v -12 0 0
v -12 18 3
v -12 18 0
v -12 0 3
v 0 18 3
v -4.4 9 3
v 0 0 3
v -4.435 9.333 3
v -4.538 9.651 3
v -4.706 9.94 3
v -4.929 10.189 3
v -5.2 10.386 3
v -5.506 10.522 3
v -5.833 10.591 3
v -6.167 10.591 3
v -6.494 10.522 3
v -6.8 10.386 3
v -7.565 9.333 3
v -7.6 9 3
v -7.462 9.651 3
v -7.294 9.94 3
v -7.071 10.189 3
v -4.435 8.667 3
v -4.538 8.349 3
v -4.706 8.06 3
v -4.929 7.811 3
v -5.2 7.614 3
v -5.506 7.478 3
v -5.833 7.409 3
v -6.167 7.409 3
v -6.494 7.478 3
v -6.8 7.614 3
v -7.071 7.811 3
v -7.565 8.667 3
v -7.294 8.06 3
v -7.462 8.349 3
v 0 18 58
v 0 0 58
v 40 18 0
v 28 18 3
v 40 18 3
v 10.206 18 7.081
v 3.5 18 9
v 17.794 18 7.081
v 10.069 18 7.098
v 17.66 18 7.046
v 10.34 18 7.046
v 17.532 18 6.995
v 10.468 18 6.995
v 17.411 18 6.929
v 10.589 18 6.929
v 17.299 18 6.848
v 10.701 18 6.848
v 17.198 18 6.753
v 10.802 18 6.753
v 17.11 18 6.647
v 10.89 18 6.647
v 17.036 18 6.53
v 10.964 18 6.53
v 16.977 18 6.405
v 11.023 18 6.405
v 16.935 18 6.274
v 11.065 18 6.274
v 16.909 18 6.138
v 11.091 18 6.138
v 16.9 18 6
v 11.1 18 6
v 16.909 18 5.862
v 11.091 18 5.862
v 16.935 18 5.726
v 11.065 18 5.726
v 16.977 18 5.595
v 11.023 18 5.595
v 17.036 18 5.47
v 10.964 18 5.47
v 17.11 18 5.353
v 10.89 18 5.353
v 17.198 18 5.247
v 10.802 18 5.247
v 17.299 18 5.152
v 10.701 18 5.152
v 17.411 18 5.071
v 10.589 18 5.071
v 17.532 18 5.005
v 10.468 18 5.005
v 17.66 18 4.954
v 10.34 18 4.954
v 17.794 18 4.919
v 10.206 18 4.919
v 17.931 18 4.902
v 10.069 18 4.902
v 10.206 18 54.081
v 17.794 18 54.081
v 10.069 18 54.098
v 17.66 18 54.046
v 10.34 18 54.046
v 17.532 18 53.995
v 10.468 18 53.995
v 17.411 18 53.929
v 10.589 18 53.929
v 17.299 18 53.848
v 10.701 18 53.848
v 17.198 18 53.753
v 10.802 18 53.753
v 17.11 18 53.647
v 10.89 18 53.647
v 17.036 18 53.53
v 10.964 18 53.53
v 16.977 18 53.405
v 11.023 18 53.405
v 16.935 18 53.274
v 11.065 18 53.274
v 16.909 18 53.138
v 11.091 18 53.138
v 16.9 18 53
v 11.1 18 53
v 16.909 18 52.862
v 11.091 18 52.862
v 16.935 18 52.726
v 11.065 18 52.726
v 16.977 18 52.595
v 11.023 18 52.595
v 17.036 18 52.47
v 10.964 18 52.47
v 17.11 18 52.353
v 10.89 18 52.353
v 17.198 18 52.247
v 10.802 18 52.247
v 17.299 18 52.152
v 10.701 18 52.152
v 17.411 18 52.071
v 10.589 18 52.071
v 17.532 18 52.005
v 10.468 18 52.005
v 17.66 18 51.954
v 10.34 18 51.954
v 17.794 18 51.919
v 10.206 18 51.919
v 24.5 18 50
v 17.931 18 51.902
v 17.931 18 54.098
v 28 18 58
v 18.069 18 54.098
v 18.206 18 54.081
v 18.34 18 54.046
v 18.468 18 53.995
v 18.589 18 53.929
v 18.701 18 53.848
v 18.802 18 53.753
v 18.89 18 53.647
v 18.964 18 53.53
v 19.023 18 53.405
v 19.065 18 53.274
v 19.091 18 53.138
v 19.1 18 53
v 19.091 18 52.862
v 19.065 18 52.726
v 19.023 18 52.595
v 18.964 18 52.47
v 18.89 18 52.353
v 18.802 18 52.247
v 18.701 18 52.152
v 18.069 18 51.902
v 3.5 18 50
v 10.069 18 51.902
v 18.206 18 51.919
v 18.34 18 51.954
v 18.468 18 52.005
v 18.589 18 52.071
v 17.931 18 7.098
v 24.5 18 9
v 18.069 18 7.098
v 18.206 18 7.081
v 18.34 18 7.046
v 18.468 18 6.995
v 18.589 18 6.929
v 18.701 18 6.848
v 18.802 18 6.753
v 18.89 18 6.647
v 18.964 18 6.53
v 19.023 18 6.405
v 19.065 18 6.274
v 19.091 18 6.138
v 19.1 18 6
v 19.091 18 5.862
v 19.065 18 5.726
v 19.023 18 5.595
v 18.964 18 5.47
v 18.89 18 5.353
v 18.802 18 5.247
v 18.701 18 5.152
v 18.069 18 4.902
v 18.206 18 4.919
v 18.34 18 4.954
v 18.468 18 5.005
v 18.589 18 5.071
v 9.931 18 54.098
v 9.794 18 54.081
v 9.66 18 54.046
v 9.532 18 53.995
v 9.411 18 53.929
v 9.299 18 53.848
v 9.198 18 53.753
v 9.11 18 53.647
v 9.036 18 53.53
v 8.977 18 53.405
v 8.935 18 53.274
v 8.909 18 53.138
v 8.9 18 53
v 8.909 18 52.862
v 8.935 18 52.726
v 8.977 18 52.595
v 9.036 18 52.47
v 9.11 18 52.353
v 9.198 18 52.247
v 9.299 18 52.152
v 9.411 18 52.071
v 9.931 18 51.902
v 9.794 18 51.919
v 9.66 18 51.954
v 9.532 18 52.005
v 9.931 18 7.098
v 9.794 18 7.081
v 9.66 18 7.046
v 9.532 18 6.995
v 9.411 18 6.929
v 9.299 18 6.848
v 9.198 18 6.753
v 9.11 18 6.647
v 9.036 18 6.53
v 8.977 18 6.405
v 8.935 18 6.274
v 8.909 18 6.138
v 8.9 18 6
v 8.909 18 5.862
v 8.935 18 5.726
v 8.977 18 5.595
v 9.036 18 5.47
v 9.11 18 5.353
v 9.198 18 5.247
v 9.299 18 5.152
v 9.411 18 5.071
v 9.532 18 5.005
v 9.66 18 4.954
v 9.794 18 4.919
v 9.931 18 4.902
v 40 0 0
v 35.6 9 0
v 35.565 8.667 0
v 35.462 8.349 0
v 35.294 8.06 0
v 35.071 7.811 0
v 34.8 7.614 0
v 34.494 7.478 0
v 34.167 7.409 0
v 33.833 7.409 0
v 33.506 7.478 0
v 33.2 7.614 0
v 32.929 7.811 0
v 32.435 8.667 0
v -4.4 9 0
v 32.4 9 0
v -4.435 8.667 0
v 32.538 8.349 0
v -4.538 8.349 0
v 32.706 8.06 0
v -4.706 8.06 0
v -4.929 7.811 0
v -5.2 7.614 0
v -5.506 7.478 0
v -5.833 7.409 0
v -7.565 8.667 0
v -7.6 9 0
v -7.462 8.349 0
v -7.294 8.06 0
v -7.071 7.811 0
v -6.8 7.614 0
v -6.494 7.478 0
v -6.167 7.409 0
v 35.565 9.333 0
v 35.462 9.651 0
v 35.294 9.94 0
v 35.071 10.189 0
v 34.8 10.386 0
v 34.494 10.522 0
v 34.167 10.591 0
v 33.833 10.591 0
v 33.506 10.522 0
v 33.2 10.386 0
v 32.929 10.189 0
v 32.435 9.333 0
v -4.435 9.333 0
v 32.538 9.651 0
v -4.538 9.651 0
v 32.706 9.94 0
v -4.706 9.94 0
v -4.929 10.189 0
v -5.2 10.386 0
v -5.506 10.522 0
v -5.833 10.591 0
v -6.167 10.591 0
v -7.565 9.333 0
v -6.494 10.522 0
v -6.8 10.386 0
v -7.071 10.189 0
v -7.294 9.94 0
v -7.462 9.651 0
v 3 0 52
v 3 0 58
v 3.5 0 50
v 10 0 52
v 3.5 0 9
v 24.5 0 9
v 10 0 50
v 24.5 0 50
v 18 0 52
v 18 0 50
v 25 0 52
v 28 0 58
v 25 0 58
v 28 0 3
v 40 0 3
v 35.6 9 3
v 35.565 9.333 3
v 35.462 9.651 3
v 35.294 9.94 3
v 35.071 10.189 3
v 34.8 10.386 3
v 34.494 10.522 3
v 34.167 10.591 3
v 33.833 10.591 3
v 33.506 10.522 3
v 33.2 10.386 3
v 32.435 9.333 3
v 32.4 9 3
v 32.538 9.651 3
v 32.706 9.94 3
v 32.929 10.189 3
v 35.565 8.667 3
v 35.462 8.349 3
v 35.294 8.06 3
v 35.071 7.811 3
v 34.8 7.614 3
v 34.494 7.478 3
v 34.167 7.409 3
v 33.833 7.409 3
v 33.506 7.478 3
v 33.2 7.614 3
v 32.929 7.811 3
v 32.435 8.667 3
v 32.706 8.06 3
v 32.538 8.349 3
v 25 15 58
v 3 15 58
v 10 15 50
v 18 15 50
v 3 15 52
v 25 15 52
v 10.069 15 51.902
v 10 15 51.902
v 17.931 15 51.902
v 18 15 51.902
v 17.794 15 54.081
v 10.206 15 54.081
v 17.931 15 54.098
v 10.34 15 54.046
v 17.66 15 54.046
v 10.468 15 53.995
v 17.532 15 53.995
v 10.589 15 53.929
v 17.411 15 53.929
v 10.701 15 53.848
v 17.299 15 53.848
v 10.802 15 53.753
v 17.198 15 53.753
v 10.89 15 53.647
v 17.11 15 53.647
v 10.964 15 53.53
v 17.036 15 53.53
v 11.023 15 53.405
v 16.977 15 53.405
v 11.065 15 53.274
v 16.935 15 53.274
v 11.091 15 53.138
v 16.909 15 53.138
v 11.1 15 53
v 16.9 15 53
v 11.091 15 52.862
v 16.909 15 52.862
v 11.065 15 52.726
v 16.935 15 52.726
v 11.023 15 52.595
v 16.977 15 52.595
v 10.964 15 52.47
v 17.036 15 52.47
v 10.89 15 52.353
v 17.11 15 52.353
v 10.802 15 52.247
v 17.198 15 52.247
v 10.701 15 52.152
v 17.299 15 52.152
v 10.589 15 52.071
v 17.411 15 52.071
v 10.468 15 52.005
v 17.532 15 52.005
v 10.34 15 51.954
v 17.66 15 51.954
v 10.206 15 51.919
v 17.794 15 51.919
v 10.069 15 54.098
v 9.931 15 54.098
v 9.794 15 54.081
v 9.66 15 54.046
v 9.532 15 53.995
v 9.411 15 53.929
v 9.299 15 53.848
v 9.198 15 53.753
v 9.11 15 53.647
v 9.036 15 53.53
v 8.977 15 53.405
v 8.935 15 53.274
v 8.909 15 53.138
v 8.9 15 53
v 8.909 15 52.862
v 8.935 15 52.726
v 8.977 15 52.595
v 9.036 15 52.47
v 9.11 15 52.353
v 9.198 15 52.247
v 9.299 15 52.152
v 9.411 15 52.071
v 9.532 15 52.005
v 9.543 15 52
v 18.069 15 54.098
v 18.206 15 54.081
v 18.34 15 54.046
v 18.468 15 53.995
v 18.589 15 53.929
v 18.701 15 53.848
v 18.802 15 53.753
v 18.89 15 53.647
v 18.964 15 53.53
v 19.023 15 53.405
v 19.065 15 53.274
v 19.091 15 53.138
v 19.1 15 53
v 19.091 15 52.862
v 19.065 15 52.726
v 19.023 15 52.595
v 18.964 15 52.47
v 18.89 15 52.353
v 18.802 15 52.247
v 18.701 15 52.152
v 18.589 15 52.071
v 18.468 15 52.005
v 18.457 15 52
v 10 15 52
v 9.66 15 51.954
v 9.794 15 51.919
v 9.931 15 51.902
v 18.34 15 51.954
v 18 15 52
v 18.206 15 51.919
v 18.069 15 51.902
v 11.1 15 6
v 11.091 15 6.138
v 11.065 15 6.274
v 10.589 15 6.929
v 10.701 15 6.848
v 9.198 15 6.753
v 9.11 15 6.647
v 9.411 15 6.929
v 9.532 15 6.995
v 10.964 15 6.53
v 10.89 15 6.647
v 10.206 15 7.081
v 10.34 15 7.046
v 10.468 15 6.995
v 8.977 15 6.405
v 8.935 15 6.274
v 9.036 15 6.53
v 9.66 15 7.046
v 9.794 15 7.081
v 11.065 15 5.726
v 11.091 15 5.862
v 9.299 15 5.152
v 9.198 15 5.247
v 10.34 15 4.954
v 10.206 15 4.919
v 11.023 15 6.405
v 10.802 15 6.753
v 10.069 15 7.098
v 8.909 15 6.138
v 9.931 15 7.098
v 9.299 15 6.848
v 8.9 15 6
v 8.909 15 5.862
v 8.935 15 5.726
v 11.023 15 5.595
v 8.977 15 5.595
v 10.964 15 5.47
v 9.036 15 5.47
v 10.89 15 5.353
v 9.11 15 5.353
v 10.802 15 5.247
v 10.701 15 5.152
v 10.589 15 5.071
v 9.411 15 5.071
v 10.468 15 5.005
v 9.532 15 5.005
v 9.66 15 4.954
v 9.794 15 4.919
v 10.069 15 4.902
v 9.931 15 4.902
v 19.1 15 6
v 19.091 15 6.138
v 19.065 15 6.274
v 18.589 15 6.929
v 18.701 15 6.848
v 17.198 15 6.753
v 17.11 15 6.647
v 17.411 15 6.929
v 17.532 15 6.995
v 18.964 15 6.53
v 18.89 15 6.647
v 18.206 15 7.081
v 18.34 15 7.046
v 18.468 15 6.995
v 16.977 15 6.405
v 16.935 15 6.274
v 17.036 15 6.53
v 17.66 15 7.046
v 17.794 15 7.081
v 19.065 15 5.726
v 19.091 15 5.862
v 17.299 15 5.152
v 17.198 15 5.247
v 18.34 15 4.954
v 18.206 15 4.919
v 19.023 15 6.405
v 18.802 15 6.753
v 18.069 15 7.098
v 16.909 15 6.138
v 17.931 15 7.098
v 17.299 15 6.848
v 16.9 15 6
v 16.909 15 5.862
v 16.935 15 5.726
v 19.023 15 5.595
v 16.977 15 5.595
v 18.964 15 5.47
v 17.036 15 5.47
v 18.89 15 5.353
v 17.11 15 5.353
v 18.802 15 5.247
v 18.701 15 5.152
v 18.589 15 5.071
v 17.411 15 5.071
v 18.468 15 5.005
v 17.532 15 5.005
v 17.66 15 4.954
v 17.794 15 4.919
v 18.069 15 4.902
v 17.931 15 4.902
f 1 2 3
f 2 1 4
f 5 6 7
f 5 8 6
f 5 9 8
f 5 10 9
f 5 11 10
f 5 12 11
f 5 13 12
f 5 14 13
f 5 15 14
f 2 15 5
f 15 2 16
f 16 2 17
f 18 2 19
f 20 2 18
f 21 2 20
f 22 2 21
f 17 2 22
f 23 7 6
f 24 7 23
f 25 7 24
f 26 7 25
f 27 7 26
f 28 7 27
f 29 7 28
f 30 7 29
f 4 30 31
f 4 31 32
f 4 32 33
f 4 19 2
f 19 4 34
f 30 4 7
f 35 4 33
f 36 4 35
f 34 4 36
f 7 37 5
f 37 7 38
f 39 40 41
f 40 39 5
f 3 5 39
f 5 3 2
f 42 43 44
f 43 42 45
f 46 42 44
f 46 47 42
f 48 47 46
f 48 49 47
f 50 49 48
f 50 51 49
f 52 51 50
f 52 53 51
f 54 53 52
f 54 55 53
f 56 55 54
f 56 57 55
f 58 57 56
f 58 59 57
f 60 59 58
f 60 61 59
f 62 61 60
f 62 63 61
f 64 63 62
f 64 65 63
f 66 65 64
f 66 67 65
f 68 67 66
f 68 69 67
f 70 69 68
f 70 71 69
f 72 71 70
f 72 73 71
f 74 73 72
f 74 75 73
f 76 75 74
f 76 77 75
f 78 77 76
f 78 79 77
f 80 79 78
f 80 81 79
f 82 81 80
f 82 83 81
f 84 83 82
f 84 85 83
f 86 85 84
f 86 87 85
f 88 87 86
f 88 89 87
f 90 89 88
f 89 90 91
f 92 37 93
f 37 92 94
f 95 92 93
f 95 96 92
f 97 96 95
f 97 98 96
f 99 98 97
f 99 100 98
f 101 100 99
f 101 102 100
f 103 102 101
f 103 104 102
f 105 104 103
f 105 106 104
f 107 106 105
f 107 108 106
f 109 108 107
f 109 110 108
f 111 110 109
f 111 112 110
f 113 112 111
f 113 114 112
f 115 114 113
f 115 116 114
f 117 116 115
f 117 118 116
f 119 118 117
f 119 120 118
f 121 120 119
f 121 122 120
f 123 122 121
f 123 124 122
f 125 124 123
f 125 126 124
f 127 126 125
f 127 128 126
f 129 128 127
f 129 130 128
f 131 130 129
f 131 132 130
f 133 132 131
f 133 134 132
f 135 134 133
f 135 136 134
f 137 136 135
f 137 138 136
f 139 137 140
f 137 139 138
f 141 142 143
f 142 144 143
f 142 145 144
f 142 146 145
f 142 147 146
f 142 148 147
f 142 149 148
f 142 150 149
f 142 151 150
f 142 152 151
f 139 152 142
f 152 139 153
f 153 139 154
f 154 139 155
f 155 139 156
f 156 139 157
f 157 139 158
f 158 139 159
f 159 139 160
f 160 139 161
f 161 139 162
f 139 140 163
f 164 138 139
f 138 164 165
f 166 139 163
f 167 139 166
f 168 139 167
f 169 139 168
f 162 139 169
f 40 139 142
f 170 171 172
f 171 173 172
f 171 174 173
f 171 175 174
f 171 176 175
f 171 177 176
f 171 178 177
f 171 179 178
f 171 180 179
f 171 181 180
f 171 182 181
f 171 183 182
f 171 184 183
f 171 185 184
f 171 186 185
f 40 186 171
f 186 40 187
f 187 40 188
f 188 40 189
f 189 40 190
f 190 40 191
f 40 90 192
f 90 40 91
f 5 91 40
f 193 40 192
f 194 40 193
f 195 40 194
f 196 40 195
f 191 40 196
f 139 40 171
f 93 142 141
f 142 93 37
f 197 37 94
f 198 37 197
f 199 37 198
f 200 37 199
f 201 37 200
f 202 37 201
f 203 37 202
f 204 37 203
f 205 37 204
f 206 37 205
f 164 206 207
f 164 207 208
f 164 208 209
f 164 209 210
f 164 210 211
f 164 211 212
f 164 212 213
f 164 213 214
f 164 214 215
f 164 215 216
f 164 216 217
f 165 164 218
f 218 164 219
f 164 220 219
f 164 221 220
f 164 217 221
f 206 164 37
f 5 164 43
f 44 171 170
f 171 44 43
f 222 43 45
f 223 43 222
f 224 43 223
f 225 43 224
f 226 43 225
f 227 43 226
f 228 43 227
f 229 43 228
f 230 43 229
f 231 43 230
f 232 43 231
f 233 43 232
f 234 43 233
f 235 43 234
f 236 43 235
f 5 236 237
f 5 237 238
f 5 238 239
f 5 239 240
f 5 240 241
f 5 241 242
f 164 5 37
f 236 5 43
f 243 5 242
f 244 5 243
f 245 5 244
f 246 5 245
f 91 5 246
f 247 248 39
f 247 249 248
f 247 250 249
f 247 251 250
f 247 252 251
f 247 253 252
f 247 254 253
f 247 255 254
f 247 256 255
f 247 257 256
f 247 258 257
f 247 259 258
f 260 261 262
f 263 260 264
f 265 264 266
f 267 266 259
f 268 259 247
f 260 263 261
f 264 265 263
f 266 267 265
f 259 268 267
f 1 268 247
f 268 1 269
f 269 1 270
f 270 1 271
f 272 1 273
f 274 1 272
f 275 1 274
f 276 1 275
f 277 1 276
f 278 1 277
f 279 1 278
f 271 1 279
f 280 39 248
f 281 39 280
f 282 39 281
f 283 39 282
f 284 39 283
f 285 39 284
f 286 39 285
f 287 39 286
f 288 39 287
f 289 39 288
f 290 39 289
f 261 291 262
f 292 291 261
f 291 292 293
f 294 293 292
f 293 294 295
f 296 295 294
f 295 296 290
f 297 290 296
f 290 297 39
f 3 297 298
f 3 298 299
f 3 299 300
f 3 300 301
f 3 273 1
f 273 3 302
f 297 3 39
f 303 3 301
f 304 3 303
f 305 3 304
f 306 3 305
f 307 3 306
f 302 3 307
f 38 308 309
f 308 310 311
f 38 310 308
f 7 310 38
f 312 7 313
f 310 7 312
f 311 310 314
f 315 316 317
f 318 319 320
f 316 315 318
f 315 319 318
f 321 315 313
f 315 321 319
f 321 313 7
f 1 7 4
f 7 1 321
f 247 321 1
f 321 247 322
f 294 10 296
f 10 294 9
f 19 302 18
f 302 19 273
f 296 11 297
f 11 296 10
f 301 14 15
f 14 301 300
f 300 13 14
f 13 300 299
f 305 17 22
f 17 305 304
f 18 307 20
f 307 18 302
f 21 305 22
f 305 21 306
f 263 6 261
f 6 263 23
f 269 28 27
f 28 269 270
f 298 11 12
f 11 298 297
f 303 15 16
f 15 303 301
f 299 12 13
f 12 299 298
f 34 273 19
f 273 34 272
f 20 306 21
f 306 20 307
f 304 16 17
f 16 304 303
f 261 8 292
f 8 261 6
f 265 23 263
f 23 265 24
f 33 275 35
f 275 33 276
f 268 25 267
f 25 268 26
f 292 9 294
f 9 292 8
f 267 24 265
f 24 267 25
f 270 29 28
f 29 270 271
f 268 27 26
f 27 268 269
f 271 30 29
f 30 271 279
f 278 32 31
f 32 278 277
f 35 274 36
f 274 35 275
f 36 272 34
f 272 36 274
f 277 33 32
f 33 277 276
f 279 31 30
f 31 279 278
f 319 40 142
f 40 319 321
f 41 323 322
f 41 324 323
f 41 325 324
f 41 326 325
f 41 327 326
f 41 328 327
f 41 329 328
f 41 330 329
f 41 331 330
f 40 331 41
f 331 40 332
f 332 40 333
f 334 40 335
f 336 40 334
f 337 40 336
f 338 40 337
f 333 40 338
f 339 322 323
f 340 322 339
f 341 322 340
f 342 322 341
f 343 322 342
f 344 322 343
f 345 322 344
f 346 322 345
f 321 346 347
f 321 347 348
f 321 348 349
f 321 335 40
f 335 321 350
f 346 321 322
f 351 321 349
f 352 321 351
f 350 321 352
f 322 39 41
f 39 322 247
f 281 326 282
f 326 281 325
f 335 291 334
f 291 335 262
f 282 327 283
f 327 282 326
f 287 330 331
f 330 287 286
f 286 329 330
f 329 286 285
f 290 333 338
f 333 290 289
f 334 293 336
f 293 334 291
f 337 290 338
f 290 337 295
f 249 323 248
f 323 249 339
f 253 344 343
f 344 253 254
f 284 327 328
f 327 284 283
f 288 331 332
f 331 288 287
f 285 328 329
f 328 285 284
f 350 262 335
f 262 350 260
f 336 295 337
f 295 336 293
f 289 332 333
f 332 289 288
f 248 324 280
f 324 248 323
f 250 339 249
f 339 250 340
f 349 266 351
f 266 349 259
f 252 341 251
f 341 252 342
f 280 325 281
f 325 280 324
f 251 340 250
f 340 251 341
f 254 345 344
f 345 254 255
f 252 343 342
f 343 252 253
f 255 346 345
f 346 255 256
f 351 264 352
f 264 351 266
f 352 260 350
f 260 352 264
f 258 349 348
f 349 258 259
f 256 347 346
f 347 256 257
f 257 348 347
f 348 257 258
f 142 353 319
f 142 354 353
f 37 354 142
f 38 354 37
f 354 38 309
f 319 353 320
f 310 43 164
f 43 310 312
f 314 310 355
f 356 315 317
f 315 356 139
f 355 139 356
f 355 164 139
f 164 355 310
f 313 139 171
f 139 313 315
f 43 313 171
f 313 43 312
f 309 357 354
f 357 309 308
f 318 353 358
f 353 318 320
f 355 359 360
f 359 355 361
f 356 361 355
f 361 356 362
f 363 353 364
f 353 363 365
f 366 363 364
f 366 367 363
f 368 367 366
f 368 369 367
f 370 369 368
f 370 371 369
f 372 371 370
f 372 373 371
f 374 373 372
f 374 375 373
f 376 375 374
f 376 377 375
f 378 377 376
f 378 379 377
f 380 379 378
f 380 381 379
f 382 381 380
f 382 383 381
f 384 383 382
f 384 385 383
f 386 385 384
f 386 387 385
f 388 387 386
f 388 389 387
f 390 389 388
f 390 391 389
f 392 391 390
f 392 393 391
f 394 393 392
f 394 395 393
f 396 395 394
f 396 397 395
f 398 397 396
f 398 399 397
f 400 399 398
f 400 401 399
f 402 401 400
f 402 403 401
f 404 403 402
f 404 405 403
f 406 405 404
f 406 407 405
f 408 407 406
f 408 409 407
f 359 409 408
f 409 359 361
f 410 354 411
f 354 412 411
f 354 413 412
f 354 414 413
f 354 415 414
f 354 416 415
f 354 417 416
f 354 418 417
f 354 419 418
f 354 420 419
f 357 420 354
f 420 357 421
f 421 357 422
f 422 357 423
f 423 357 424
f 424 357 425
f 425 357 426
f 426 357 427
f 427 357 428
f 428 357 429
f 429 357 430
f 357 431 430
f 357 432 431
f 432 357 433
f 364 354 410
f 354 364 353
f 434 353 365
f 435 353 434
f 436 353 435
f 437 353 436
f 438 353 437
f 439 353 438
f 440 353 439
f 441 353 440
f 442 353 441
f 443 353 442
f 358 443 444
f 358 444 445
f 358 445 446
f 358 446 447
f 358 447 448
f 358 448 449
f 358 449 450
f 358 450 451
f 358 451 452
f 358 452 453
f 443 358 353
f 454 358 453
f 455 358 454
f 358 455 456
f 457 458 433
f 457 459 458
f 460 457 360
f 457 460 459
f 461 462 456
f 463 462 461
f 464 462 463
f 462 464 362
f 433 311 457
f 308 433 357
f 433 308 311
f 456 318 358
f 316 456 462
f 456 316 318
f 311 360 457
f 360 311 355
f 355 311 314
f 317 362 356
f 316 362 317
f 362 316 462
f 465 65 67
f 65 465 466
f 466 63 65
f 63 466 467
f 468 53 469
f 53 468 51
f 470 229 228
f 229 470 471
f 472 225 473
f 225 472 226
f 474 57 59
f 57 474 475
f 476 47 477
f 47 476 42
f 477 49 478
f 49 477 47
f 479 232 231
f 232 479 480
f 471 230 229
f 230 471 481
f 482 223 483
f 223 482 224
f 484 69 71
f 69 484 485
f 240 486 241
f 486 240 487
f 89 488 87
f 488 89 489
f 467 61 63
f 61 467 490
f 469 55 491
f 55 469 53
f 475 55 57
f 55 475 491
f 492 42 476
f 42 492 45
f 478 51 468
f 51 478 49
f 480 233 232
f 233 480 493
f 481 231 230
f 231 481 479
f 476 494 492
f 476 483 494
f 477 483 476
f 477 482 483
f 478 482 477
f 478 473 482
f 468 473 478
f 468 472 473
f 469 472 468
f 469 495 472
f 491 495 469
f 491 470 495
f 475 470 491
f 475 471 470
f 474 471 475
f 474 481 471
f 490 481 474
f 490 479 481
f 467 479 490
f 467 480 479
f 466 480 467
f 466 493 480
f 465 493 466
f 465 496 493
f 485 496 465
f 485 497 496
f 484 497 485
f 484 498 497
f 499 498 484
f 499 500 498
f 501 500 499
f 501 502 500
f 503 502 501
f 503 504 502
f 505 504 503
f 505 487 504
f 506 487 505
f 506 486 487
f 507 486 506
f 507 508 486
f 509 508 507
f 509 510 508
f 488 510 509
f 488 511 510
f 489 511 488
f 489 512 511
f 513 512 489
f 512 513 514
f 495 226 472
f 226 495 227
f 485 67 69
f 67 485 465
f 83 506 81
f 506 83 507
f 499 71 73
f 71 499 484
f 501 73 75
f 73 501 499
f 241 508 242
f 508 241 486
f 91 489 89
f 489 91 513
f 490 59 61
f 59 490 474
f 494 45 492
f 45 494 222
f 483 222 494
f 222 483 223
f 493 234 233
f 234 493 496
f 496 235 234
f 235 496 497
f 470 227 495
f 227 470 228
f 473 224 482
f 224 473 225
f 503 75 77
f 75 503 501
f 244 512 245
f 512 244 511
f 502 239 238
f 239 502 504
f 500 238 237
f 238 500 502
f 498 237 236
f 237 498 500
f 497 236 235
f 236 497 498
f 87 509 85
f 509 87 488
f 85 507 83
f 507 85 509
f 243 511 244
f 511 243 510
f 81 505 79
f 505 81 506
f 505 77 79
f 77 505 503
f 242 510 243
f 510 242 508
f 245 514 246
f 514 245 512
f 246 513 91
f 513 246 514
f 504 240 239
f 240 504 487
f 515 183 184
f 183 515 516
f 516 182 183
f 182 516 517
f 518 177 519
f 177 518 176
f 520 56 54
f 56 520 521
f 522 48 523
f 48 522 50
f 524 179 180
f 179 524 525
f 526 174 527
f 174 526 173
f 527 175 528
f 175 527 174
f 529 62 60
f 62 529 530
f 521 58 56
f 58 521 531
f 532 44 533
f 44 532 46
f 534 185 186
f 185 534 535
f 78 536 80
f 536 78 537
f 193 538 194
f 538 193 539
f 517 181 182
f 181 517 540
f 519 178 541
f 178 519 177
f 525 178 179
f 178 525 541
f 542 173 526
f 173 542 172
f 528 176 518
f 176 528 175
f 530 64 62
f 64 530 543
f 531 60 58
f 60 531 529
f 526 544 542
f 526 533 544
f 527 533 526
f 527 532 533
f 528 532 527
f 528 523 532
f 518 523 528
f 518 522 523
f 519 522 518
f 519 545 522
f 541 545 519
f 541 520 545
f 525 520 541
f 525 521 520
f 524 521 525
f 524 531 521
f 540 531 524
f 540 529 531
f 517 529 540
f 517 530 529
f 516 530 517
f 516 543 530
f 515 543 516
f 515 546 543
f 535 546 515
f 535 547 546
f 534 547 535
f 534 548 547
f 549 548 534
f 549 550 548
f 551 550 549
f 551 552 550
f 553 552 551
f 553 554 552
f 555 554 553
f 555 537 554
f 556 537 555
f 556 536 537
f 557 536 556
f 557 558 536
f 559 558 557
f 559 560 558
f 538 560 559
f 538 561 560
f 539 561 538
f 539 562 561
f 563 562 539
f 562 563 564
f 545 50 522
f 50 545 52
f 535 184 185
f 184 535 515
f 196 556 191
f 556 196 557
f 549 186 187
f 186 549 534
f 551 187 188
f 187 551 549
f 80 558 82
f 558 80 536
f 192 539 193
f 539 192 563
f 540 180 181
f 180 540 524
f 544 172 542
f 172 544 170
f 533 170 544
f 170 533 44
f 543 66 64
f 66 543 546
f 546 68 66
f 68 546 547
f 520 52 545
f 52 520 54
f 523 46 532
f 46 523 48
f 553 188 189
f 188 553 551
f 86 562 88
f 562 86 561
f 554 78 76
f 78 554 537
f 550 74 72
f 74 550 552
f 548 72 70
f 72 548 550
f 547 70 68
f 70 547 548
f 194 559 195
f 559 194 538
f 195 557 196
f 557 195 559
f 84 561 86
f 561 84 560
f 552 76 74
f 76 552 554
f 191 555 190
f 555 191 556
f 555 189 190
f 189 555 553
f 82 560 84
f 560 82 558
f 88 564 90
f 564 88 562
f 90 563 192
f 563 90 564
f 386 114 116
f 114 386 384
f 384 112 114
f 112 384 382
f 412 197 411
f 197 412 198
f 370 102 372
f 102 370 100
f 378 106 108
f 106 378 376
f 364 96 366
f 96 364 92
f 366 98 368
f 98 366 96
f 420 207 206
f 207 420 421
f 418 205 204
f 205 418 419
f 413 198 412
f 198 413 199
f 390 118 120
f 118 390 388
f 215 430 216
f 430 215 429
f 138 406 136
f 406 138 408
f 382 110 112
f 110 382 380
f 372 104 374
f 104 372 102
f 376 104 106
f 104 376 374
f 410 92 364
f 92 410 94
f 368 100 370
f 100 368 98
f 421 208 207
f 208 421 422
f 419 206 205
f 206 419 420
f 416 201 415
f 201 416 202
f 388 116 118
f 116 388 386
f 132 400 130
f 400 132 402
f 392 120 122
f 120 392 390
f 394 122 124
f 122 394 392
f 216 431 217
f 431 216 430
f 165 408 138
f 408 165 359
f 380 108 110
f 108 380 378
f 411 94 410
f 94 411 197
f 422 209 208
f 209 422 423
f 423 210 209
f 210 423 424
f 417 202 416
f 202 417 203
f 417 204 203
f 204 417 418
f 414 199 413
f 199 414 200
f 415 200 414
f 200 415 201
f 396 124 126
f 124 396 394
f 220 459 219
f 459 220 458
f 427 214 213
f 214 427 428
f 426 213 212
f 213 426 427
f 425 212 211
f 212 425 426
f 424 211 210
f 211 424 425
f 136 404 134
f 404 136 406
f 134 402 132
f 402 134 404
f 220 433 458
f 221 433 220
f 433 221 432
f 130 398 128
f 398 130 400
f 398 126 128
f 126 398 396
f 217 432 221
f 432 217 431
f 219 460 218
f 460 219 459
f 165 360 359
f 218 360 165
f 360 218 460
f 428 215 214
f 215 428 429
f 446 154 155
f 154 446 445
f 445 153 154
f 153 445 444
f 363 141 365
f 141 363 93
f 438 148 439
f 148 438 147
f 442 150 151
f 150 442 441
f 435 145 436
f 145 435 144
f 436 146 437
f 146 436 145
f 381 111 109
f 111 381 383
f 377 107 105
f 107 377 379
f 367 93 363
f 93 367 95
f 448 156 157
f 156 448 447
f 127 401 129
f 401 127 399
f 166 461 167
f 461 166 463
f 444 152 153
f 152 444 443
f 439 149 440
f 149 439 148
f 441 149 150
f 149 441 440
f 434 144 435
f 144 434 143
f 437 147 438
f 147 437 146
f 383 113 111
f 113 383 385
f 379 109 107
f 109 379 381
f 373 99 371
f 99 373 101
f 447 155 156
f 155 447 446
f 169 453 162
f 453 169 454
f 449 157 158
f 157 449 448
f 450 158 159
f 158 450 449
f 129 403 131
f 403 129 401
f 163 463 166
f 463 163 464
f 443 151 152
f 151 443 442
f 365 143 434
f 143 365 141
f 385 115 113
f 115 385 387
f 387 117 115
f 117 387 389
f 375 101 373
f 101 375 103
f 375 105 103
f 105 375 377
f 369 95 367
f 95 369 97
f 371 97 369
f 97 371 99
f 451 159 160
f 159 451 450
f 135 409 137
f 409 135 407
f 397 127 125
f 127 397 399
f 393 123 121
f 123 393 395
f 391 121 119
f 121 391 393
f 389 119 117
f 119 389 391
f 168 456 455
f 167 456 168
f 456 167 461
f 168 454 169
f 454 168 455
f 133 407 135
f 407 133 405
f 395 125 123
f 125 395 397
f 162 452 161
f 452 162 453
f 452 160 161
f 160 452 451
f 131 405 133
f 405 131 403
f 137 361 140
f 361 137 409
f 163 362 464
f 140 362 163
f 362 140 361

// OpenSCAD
difference() {
    // Outer cube
    translate([0, 0, 0])
    cube([28, 18, 58]);
    
    // Inner cube to subtract, centered
    translate([3.5, 0, 9])
    cube([21, 18, 41]);
    
    // bottom
    translate([3, 0, 52])
    cube([22, 15, 8]);    
    
    // cut out
    translate([10, 0, 50])
    cube([8, 15, 7]);   
    
    // top
    //translate([0, 0, 0])
    //cube([28, 18, 3]);
    
    translate([10, 25, 6]) // center of top face
       rotate([90, 0, 0]) // orient the cylinder vertically
            cylinder(h = 10, d = 2.2, $fn = 50); 
    
    translate([18, 25, 6]) // center of top face
       rotate([90, 0, 0]) // orient the cylinder vertically
            cylinder(h = 10, d = 2.2, $fn = 50); 

    translate([10, 25, 53]) // center of top face
       rotate([90, 0, 0]) // orient the cylinder vertically
            cylinder(h = 10, d = 2.2, $fn = 50); 

    translate([18, 25, 53]) // center of top face
       rotate([90, 0, 0]) // orient the cylinder vertically
            cylinder(h = 10, d = 2.2, $fn = 50); 
 
}

difference() {
    translate([-12, 0, 0])
    cube([12, 18, 3]);

    // Hole: M3 clearance = 3.2mm diameter
    // Positioned in center of cube: (6mm, 9mm), height = 3mm
    translate([-6, 9, -1])  // Centered in X (cube is 12mm wide)
    cylinder(h = 5, d = 3.2, $fn = 30);  // Slightly taller to ensure clean cut
}

difference() {
    translate([28, 0, 0])
    cube([12, 18, 3]);

    // Hole: M3 clearance = 3.2mm diameter
    // Positioned in center of cube: (6mm, 9mm), height = 3mm
    translate([34, 9, -1])  // Centered in X (cube is 12mm wide)
    cylinder(h = 5, d = 3.2, $fn = 30);  // Slightly taller to ensure clean cut
}
